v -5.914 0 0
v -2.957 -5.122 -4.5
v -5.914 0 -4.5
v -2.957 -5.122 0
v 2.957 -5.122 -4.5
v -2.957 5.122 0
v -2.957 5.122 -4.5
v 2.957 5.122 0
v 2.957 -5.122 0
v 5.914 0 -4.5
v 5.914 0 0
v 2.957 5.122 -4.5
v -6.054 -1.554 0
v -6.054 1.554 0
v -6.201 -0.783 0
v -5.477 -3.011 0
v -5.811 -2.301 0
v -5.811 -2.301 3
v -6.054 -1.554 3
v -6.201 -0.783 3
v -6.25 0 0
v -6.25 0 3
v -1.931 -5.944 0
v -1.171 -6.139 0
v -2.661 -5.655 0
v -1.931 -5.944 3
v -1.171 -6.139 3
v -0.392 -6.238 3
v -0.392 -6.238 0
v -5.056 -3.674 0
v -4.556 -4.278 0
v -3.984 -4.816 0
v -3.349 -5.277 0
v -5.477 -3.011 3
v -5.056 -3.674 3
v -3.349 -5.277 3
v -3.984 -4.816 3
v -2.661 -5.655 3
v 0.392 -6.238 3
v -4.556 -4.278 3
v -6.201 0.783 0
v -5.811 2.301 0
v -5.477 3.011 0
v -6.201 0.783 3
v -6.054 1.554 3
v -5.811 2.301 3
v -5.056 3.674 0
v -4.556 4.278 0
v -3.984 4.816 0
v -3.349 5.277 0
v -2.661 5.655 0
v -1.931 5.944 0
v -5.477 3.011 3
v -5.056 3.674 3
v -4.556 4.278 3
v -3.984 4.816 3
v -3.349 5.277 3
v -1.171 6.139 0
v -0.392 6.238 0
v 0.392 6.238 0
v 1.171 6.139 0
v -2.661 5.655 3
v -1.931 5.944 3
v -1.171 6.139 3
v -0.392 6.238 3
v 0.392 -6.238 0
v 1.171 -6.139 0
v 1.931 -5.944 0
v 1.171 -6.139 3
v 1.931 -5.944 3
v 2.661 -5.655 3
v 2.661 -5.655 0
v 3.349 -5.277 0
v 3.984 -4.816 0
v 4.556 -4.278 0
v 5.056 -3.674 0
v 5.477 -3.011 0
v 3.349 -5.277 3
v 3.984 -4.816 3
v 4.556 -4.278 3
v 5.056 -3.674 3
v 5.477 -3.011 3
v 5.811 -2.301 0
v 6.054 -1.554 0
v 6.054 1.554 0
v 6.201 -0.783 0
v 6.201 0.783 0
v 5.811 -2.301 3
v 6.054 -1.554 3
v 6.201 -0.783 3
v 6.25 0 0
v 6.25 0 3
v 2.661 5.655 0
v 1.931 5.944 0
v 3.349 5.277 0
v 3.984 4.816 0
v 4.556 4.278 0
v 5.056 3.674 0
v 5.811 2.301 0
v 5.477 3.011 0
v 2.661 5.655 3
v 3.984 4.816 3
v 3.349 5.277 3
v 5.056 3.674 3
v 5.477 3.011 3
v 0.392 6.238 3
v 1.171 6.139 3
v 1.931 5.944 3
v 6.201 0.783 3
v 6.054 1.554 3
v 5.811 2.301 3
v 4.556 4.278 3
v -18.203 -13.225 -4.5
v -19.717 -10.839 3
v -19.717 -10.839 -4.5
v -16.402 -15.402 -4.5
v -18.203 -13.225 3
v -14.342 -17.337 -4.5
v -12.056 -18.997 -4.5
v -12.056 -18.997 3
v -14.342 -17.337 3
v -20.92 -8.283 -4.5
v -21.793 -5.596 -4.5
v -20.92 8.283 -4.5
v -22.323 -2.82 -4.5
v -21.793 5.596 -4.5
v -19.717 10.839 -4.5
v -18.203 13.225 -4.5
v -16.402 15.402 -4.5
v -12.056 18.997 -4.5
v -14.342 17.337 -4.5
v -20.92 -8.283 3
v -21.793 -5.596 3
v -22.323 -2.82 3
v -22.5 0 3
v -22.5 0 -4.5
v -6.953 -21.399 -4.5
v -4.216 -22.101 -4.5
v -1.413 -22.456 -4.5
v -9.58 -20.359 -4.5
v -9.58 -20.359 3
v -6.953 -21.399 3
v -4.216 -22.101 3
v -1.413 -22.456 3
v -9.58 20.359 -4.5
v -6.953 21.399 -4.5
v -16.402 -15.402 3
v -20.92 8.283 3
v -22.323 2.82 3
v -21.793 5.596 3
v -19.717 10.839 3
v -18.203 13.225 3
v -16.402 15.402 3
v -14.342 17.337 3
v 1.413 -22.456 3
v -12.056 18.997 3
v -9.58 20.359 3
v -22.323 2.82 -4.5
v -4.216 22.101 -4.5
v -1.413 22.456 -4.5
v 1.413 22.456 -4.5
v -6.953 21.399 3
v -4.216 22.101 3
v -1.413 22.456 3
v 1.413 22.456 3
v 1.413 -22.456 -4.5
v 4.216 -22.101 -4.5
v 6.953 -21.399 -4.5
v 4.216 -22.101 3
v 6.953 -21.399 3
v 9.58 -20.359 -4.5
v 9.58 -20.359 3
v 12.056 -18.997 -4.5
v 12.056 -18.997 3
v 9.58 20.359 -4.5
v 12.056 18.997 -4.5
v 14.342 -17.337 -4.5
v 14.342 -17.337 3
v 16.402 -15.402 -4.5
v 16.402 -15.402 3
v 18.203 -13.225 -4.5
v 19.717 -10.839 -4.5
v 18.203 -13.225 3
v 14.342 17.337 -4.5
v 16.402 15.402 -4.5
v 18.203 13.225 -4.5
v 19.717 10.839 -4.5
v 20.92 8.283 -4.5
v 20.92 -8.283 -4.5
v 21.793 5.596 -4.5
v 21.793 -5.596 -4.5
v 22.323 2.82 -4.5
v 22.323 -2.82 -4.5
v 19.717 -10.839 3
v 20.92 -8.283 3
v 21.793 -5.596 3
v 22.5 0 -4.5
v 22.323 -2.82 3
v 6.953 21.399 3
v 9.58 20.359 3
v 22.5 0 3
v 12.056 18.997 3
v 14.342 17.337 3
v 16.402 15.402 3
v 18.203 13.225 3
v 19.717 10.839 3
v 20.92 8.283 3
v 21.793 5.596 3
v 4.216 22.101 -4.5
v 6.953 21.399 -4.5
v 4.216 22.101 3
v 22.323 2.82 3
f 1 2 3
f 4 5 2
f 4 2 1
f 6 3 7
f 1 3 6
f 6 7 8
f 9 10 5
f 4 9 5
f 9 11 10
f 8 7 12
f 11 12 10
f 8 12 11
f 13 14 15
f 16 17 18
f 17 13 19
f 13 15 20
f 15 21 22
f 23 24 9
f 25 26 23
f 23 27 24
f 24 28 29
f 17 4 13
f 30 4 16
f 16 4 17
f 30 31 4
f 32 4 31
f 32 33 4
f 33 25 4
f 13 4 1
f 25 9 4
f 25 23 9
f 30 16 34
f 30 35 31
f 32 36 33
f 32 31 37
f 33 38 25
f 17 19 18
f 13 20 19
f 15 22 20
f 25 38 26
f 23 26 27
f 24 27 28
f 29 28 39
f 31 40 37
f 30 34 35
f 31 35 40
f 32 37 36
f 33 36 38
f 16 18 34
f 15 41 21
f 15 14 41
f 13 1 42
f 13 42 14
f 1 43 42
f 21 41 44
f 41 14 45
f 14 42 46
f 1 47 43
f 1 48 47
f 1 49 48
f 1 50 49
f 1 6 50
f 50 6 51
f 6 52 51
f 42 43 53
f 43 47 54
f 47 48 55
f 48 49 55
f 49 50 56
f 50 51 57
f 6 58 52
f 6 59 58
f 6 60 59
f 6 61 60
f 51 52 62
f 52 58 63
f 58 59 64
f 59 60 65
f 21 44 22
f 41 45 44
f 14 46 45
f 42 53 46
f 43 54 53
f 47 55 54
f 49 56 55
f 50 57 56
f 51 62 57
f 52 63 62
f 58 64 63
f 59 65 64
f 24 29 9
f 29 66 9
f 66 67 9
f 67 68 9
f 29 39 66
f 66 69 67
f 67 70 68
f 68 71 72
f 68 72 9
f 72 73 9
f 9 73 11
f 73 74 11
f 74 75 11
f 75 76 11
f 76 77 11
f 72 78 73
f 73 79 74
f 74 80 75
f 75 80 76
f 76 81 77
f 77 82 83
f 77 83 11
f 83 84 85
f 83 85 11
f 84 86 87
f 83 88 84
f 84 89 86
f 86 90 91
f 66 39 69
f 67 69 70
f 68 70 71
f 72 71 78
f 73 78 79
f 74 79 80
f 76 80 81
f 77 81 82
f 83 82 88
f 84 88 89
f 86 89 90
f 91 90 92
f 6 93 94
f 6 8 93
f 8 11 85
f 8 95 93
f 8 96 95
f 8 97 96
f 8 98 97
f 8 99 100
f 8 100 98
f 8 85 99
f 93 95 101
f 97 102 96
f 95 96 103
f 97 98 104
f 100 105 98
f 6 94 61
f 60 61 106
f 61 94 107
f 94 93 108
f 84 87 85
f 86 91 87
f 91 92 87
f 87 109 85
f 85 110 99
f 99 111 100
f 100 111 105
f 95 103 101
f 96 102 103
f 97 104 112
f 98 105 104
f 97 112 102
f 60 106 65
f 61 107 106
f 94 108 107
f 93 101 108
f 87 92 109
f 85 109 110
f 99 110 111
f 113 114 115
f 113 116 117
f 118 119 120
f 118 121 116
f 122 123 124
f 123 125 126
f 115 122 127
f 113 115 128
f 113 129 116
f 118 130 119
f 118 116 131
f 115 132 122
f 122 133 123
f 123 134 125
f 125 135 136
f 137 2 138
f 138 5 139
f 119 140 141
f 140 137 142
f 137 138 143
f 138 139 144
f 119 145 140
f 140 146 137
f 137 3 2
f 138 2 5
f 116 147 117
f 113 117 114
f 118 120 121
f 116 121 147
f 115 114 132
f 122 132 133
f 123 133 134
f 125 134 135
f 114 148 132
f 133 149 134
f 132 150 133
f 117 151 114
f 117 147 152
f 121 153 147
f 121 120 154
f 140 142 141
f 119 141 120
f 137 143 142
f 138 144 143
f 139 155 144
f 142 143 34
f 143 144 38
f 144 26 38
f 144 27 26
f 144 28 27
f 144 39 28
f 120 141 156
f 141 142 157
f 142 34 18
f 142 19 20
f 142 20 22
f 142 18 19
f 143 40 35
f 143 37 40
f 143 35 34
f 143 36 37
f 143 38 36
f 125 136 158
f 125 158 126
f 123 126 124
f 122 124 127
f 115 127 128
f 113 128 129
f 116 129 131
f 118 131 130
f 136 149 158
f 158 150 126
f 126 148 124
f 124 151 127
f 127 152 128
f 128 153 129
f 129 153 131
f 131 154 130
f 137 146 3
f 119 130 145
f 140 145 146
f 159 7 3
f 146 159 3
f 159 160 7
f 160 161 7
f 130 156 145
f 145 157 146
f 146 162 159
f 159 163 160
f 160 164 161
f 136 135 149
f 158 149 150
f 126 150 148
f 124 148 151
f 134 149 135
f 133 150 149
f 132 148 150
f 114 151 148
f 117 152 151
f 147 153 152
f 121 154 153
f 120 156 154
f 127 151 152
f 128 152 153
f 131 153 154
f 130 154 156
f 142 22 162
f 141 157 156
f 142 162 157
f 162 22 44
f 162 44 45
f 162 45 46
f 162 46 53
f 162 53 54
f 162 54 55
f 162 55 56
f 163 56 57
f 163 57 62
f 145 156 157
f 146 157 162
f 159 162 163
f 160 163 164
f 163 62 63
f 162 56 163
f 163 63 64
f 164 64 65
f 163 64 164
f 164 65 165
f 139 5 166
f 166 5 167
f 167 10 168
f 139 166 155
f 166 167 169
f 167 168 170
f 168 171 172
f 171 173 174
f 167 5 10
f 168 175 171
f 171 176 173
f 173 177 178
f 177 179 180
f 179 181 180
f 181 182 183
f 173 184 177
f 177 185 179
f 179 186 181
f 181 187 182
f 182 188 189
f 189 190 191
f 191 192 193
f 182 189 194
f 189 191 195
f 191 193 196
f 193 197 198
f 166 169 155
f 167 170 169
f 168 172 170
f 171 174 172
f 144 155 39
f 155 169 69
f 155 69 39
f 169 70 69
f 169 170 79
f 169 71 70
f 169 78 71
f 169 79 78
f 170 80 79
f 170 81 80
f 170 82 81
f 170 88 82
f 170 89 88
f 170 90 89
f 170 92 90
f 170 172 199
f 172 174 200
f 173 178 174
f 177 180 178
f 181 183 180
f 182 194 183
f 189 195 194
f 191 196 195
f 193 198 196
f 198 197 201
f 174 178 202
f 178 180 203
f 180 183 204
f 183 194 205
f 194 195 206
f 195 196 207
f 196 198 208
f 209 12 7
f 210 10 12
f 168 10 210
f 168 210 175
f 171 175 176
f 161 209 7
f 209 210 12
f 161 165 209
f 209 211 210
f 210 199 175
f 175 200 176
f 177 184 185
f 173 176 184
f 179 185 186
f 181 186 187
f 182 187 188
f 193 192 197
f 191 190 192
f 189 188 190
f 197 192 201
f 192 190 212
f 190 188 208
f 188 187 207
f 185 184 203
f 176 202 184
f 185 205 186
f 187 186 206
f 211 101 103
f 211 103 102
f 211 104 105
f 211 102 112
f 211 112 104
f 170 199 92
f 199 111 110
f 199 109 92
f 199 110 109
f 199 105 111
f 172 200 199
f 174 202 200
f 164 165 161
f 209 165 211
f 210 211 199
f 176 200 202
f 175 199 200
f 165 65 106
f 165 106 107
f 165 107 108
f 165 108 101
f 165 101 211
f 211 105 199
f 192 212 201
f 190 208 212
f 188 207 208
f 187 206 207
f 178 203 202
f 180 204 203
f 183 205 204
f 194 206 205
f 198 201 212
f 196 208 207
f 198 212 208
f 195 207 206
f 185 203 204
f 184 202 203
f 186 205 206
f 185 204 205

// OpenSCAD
$fn = 50;

difference() {
	union() {
		translate(v = [0, 0, -4.5]) {
			cylinder(h = 7.5, r = 22.5);
		}
	}
	union() {
		translate(v = [0, 0, 0]) {
			rotate(a = [0, 0, 0]) {
				difference() {
					union() {
						translate(v = [0, 0, -5]) {
							linear_extrude(height = 5) {
								polygon(points = [[5.914249999999999, 0.0], [2.957125, 5.1218907443321156], [-2.9571249999999982, 5.1218907443321156], [-5.914249999999999, 7.242867331857232e-16], [-2.9571250000000022, -5.121890744332115], [2.9571249999999956, -5.121890744332118]]);
							}
						}
					}
					union();
				}
			}
		}
		#cylinder(h = 3, r = 6.25);
		#translate(v = [0, 0, -100.0]) {
			cylinder(h = 200, r = 3.25);
		}
	}
}
